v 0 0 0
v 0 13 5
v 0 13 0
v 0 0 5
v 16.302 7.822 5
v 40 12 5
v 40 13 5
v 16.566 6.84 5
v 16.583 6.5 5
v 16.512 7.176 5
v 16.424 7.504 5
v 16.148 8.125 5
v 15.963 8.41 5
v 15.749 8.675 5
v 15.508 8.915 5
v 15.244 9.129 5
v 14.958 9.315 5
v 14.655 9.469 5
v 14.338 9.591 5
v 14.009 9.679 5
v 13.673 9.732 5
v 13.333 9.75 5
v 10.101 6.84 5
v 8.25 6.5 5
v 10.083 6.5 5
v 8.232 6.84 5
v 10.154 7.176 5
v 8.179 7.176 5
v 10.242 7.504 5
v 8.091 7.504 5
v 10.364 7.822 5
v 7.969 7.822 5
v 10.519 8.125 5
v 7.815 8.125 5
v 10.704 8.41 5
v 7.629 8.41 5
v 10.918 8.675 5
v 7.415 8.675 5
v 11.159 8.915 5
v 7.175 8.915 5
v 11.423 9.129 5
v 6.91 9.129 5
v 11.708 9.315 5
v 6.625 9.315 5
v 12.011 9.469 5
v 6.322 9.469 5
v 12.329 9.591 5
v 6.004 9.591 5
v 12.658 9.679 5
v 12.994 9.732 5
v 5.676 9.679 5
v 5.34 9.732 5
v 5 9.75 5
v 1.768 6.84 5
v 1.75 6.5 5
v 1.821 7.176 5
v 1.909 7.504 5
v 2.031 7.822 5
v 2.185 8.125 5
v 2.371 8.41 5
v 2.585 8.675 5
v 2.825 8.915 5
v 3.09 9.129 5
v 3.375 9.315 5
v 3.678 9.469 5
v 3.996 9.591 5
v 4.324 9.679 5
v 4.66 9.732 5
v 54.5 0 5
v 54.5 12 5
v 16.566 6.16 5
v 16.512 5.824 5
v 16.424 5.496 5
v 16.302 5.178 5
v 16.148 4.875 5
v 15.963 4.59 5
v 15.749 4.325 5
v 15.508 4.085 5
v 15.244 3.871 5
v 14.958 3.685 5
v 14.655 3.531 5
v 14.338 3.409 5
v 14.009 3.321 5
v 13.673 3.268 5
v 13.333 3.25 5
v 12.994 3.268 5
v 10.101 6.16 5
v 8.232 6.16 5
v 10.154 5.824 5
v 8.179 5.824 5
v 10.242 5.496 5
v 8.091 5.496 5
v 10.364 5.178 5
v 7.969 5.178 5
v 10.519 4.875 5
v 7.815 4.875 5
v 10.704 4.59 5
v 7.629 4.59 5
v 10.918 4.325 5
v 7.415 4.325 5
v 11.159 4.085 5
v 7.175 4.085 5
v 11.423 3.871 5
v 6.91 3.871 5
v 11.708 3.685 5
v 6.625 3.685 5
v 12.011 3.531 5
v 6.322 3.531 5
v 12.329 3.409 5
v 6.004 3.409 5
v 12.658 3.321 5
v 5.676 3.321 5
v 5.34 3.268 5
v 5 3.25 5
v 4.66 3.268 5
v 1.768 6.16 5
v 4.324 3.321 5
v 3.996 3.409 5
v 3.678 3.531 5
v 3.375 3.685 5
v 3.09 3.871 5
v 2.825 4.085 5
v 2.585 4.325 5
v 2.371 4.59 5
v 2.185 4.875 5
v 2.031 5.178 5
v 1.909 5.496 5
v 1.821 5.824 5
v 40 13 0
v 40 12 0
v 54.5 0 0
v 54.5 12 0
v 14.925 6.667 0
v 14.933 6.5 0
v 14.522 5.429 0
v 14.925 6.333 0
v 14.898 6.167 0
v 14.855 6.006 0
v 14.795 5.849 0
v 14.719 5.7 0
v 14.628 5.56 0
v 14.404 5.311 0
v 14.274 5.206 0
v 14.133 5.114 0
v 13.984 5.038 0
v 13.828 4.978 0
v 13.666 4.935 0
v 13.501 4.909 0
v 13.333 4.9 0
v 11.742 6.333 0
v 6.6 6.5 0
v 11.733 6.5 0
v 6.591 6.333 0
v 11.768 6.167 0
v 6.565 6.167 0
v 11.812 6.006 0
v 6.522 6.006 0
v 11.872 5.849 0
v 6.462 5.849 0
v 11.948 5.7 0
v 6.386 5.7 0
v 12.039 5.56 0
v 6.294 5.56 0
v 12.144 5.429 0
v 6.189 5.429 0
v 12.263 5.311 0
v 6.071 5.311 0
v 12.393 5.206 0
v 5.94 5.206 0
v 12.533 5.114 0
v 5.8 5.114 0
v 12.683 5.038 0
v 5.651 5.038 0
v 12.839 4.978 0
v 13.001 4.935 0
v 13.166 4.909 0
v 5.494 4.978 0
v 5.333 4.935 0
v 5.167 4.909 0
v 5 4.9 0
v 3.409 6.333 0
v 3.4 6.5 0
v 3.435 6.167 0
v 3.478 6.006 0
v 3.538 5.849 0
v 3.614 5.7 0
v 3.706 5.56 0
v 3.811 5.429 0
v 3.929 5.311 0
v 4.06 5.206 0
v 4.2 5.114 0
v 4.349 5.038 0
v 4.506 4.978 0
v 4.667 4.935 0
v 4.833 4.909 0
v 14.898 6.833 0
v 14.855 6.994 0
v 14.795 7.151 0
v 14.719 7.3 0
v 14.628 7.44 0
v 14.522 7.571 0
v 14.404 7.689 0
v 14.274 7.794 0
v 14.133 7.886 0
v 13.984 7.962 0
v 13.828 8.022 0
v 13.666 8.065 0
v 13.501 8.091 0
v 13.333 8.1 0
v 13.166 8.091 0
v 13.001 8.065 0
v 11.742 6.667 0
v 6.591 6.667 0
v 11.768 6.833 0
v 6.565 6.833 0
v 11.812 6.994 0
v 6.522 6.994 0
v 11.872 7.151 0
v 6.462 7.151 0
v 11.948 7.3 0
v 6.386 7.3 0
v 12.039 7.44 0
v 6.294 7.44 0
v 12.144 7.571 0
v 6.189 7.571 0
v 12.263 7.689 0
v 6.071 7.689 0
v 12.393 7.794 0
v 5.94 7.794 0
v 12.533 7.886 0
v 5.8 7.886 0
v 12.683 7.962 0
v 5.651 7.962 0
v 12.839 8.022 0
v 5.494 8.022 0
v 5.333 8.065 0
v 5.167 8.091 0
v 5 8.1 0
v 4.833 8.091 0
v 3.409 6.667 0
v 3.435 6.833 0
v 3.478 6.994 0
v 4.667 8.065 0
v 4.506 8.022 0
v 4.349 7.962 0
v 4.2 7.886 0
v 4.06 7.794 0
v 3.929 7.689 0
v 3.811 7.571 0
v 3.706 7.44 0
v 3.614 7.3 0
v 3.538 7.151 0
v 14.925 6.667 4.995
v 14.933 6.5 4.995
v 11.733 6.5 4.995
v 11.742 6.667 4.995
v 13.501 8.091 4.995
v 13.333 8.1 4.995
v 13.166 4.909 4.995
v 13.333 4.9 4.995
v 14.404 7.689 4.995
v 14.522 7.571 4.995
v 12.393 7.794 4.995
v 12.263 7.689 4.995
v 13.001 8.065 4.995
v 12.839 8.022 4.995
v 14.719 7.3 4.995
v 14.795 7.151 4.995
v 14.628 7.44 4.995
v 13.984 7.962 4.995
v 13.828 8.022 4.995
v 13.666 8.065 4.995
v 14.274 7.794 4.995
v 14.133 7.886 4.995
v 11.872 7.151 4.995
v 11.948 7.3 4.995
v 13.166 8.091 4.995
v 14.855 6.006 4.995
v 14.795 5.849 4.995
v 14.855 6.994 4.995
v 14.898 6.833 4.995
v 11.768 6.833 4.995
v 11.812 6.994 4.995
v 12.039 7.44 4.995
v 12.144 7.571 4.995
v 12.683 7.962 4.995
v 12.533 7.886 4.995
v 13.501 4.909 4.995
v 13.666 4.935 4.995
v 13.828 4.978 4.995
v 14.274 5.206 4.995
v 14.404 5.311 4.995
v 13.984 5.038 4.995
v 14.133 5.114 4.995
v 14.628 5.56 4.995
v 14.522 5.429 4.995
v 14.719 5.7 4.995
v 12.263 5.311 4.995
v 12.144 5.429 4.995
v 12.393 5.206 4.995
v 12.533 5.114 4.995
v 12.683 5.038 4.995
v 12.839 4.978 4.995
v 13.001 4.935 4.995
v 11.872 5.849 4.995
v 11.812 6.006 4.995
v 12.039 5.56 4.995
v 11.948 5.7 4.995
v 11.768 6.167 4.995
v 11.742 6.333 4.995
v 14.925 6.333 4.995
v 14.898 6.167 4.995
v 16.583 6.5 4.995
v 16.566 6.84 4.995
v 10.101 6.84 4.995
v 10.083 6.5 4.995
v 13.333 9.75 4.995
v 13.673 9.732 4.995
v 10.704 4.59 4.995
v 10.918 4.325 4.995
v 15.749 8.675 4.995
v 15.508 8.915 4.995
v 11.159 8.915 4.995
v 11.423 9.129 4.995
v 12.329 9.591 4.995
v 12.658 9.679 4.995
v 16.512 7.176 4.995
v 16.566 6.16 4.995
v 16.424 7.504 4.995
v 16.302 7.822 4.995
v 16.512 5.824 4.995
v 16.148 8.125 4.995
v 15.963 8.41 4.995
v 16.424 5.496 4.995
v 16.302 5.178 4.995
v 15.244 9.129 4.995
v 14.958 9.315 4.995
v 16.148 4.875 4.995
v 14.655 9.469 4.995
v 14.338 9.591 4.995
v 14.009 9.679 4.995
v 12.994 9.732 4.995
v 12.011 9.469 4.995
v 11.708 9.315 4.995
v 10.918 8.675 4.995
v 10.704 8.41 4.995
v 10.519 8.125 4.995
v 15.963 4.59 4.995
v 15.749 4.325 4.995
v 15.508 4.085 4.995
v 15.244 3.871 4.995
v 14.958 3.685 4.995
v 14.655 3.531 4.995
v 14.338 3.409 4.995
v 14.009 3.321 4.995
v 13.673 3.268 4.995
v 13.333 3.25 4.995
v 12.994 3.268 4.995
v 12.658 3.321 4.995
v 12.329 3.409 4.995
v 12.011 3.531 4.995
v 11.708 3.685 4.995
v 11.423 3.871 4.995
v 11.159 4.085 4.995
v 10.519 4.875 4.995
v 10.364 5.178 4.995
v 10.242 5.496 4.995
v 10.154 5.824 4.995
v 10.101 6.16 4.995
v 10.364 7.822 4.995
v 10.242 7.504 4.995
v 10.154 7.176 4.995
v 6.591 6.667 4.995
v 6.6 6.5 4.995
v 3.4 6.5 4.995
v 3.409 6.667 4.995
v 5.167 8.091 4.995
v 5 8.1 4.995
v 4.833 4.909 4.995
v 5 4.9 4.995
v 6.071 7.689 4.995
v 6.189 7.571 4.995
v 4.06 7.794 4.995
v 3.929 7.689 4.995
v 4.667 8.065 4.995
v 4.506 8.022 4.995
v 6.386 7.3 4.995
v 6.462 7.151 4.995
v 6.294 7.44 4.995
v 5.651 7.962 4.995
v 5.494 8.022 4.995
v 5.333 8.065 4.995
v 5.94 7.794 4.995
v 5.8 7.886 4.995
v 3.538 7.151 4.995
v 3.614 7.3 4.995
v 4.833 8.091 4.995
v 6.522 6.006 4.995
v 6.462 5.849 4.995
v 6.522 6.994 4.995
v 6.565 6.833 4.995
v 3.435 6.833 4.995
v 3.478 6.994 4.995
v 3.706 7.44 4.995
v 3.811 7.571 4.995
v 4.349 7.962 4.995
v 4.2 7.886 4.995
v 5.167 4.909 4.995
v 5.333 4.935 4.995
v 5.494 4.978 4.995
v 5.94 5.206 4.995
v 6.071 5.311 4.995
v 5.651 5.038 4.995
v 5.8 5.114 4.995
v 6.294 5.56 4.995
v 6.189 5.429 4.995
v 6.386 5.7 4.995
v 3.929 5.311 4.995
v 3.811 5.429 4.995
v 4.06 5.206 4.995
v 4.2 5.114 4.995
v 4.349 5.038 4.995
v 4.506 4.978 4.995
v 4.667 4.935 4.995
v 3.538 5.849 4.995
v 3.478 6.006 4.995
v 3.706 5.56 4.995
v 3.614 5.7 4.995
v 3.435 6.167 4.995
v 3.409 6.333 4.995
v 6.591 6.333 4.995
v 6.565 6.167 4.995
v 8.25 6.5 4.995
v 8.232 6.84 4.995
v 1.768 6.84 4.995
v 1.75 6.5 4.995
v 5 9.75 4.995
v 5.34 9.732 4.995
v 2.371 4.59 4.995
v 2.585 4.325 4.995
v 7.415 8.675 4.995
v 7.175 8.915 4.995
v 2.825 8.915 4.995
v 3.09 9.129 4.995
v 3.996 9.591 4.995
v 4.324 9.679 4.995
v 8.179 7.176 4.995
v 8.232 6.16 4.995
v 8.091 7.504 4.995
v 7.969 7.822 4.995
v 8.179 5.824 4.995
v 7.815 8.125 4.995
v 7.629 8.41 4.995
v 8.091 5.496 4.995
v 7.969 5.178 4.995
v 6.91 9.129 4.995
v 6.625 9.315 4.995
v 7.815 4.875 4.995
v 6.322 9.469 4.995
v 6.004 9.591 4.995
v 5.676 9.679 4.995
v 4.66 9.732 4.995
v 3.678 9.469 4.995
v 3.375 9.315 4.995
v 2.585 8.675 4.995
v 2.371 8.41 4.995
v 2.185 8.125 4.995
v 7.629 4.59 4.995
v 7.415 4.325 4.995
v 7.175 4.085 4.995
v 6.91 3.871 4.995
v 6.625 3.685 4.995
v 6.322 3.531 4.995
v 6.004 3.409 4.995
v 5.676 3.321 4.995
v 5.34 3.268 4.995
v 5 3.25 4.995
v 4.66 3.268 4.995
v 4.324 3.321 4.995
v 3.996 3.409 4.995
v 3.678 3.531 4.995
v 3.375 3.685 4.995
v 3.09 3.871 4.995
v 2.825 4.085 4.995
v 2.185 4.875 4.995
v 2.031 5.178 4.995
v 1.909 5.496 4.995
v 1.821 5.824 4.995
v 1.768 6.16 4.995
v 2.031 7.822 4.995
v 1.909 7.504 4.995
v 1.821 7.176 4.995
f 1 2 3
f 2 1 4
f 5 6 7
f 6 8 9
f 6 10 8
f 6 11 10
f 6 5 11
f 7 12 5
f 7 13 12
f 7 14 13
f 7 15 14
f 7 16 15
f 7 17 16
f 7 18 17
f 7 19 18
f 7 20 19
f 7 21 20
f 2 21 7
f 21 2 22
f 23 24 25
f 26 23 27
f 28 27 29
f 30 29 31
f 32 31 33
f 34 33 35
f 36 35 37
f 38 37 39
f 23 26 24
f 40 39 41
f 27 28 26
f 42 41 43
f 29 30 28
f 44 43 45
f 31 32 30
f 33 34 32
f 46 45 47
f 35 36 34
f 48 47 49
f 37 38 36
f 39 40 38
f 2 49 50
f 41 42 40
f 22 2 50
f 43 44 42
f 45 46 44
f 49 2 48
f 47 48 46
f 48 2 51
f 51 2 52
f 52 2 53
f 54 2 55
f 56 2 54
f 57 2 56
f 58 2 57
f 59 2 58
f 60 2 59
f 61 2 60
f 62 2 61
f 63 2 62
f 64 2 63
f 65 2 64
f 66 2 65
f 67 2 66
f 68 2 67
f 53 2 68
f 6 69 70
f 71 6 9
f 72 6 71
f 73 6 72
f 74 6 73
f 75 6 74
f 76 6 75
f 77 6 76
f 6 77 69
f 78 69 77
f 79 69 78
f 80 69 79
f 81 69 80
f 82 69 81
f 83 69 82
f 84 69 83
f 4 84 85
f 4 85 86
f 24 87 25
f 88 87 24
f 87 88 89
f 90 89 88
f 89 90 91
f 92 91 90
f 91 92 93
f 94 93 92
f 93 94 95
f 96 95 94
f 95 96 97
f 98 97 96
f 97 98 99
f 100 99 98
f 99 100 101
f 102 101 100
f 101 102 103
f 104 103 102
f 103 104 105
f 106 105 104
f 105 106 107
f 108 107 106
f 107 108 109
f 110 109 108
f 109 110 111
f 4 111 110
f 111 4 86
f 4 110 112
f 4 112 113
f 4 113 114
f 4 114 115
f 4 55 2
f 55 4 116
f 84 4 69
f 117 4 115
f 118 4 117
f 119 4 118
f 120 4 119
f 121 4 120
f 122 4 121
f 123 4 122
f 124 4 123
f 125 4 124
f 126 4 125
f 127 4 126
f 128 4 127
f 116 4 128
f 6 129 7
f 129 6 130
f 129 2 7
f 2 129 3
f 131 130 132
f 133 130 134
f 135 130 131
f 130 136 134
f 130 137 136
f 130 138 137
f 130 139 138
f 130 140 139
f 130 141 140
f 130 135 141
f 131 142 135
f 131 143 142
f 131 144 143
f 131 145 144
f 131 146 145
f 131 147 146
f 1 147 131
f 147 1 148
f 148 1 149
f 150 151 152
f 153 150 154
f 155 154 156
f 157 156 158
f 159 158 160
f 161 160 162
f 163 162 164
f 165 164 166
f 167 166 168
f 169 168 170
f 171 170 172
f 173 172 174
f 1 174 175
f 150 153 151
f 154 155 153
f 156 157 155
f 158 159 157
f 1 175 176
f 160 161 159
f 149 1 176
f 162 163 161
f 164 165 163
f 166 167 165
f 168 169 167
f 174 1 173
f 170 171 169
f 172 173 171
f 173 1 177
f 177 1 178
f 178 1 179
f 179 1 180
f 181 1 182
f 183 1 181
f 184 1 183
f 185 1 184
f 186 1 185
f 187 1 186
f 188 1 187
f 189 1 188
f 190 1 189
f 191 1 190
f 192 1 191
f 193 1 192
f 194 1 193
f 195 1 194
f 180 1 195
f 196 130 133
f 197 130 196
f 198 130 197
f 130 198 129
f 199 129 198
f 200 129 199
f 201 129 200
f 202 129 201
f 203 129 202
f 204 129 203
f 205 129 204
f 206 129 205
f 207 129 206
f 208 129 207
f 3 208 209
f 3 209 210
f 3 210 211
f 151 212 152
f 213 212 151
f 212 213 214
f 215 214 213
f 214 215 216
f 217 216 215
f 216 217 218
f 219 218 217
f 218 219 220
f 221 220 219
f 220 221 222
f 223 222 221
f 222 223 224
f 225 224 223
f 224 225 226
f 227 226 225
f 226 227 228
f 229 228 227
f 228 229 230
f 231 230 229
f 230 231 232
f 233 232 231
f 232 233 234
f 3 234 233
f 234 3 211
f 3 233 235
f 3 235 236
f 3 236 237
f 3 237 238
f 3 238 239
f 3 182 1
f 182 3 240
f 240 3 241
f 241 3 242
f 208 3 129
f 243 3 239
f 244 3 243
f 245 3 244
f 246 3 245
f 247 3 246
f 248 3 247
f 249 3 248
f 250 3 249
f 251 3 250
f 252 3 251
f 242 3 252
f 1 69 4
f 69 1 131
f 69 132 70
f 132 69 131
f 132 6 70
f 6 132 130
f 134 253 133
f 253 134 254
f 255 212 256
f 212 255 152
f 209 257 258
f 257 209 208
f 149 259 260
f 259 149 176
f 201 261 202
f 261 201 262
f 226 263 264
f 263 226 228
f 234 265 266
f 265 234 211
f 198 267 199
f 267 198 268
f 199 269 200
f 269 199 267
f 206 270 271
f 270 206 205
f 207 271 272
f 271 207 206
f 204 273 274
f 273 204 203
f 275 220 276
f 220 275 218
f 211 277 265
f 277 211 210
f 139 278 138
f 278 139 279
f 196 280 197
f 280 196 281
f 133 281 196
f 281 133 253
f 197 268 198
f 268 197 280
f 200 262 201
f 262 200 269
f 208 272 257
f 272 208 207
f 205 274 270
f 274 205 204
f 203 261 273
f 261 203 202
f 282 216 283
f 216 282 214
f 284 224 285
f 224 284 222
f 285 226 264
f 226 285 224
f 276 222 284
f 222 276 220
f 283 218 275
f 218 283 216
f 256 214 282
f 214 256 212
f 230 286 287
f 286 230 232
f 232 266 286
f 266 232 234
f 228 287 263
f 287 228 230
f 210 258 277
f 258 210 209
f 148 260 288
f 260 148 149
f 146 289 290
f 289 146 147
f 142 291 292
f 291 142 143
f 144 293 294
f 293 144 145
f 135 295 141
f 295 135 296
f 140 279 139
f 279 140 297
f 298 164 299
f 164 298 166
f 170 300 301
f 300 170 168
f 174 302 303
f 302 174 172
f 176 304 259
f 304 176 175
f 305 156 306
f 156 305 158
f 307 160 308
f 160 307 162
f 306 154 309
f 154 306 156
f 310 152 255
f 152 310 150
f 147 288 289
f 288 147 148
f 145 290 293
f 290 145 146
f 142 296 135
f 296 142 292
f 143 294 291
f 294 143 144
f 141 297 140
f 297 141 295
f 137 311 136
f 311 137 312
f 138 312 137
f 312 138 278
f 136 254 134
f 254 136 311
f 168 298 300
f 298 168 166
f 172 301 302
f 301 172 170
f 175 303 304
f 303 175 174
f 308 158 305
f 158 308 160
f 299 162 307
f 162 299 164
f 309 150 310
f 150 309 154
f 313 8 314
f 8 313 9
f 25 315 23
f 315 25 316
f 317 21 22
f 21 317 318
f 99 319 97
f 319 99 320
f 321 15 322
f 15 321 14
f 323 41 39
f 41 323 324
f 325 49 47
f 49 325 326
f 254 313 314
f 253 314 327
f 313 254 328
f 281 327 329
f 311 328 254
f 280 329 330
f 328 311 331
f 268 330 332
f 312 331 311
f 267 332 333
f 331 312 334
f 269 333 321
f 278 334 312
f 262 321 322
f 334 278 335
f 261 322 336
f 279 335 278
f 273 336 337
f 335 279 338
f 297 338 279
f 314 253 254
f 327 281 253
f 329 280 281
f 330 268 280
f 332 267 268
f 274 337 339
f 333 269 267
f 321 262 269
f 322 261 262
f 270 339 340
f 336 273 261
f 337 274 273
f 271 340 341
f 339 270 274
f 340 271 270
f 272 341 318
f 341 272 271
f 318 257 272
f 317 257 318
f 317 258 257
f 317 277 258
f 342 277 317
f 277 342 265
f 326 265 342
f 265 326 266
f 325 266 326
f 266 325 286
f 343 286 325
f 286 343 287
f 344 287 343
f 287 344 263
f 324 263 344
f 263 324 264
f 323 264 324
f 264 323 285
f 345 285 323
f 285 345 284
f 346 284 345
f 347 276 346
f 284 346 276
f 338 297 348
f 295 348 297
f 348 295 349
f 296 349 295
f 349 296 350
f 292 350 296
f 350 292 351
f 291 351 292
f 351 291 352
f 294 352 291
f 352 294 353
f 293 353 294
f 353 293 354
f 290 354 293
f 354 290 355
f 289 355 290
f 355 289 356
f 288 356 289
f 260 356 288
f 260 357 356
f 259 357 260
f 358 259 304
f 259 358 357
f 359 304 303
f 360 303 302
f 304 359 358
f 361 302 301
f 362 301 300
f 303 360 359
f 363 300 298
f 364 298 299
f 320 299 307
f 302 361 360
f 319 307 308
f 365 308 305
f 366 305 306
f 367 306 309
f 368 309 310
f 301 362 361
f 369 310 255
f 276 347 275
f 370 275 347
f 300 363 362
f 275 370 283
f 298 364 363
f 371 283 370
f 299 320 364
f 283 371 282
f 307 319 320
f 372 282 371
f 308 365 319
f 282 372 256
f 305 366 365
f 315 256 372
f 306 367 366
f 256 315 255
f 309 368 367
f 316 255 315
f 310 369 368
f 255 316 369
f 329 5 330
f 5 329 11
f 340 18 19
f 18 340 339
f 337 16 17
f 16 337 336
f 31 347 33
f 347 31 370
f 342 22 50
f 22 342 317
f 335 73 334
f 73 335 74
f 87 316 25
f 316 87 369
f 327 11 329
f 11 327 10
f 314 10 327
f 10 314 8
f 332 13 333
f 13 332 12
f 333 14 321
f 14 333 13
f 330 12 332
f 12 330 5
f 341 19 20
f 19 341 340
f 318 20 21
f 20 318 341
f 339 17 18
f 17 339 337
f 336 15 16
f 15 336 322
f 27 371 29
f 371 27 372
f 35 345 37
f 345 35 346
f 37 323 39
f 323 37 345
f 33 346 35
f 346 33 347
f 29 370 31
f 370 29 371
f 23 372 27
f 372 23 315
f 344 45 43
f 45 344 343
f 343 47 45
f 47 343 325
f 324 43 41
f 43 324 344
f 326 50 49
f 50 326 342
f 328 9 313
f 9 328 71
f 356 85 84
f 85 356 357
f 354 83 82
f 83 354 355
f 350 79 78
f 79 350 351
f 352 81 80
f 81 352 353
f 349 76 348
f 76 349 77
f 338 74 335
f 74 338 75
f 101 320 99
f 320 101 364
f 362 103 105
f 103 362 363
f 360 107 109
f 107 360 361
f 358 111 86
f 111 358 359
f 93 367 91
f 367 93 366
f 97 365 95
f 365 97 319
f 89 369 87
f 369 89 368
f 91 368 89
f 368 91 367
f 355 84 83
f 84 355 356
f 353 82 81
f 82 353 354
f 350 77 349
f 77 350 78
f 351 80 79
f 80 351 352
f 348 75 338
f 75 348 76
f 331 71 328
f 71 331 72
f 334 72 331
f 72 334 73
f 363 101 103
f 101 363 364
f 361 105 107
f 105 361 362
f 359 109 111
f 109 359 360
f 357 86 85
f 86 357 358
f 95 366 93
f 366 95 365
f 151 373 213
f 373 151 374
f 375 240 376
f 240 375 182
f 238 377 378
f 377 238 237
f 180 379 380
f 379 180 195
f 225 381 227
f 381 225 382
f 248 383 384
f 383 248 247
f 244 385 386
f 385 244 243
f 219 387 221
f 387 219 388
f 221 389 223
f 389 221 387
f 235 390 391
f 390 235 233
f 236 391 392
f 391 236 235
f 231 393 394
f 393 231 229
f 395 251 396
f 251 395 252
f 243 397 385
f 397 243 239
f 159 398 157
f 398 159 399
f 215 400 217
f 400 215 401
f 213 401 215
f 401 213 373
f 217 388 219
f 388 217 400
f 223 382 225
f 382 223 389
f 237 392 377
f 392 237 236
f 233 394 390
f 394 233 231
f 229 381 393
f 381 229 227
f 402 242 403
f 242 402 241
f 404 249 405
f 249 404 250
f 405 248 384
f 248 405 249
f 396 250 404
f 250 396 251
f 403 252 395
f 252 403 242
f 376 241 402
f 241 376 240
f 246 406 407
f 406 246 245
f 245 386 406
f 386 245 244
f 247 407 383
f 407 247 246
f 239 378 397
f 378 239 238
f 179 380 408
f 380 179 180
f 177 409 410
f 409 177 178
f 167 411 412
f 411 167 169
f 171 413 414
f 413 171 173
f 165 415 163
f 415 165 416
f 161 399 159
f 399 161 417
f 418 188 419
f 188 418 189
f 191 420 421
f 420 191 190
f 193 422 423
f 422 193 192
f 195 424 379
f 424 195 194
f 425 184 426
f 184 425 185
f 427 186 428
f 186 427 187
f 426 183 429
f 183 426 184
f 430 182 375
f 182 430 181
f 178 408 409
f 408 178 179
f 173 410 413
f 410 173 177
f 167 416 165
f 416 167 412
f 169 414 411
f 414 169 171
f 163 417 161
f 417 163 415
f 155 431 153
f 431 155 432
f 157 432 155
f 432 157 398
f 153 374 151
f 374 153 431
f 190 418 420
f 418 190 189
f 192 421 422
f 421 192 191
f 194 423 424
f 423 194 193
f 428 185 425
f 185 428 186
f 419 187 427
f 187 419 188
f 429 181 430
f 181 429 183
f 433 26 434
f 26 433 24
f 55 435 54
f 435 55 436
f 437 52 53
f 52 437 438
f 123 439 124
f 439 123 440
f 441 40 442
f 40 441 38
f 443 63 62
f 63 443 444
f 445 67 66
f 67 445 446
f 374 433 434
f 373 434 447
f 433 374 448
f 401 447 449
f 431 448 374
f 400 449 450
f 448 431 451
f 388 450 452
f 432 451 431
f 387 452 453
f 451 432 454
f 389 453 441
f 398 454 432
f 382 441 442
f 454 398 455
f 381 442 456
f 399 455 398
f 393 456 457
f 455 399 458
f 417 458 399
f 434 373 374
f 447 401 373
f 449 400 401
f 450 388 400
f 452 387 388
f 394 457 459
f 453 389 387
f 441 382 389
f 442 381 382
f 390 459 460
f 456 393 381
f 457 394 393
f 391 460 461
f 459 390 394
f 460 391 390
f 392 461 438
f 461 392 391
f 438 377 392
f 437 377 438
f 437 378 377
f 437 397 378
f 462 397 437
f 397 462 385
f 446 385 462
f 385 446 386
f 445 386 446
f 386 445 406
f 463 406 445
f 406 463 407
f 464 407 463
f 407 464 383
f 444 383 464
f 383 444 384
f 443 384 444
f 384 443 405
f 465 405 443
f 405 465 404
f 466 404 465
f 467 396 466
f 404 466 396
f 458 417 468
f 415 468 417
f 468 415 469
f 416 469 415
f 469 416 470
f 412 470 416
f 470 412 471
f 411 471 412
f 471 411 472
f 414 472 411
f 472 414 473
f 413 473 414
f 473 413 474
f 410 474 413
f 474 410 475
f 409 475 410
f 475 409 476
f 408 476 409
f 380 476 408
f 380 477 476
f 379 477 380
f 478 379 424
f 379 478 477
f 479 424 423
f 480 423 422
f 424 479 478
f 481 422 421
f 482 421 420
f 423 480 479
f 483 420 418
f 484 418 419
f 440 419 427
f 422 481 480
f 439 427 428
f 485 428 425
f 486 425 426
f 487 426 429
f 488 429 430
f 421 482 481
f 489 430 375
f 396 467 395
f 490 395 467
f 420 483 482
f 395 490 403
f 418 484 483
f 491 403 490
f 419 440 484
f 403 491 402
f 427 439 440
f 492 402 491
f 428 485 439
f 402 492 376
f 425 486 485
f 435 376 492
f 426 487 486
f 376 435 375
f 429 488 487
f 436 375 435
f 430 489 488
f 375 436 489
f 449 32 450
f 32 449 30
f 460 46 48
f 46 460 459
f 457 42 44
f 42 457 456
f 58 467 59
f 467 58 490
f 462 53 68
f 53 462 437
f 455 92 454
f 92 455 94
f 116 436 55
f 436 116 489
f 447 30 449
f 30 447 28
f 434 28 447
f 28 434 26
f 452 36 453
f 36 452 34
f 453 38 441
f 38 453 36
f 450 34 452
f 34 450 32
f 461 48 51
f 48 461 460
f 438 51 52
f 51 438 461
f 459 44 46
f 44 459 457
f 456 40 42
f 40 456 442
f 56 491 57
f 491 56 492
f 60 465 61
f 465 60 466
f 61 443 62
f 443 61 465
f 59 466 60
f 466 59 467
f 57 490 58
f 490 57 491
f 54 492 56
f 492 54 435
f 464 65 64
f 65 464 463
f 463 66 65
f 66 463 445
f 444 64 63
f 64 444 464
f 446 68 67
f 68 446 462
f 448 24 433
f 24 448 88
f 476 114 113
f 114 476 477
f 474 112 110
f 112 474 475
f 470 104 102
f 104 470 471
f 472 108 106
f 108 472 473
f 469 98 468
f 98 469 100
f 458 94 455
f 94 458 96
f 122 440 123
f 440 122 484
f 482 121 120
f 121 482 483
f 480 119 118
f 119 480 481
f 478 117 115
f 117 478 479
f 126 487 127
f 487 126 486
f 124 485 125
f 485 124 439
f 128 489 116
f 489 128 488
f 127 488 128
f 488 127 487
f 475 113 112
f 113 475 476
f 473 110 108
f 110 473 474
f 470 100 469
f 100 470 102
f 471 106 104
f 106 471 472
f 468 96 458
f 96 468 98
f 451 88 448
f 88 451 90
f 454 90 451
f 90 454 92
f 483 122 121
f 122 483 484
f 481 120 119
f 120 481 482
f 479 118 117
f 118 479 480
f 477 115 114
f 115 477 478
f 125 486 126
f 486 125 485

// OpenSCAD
// file: nutsnbolts/data-access.scad
// Norm Nuts and Bolts - a OpenSCAD library
// Copyright (C) 2012  Johannes Kneer

// This program is free software: you can redistribute it and/or modify
// it under the terms of the GNU General Public License as published by
// the Free Software Foundation, either version 3 of the License, or
// (at your option) any later version.

// This program is distributed in the hope that it will be useful,
// but WITHOUT ANY WARRANTY; without even the implied warranty of
// MERCHANTABILITY or FITNESS FOR A PARTICULAR PURPOSE.  See the
// GNU General Public License for more details.

// You should have received a copy of the GNU General Public License
// along with this program.  If not, see <http://www.gnu.org/licenses/>.


// DATABASE ACCESS FUNCTIONS AND CONSTANTS



// == CONSTANTS ==

// screw table access keys
_NB_S_DESC            = 0;
_NB_S_FAMKEY			    = 1;
_NB_S_LENGTH          = 2;
_NB_S_NOTHREAD_LENGTH = 3;

_NB_F_DESC			      = 0;
_NB_F_OUTER_DIA       = 1;
_NB_F_INNER_DIA       = 2;
_NB_F_LEAD            = 3;
_NB_F_KEY             = 4;
_NB_F_KEY_DEPTH       = 5;
_NB_F_HEAD_HEIGHT     = 6;
_NB_F_HEAD_DIA        = 7;
_NB_F_NUT_KEY         = 8;
_NB_F_NUT_HEIGHT      = 9;
_NB_F_PITCH_FINE      = 10;
_NB_F_PITCH_MEDIUM    = 11;
_NB_F_PITCH_COARSE    = 12;


// == FUNCTIONS ==

// _get_screw("descriptor")   with descriptor = M8x25
//   find the line for a general object in the data matrix

function _get_screw(n) = data_screw[search([n], data_screw)[0]];
function _get_screw_fam(n) = data_screw_fam[search([_get_screw(n)[_NB_S_FAMKEY]], data_screw_fam)[0]];

function _get_fam(n) = data_screw_fam[search([n], data_screw_fam)[0]];


// _get_XXXXX("descriptor") functions
// find a single property in the database

function _get_desc(n)        = _get_screw(n)[_NB_S_DESC];
function _get_famkey(n)         = _get_screw(n)[_NB_S_FAMKEY];
function _get_length(n)      = _get_screw(n)[_NB_S_LENGTH];
function _get_nt_length(n)   = _get_screw(n)[_NB_S_NOTHREAD_LENGTH];

function _get_outer_dia(n)   = _get_screw_fam(n)[_NB_F_OUTER_DIA];
function _get_inner_dia(n)   = _get_screw_fam(n)[_NB_F_INNER_DIA];
function _get_lead(n)        = _get_screw_fam(n)[_NB_F_LEAD];
function _get_head_height(n) = _get_screw_fam(n)[_NB_F_HEAD_HEIGHT];
function _get_head_dia(n)    = _get_screw_fam(n)[_NB_F_HEAD_DIA];
function _get_nut_key(n)     = _get_screw_fam(n)[_NB_F_NUT_KEY];
function _get_nut_height(n)  = _get_screw_fam(n)[_NB_F_NUT_HEIGHT];
function _get_fine_pitch(n)  = _get_screw_fam(n)[_NB_F_PITCH_FINE];
function _get_medium_pitch(n)  = _get_screw_fam(n)[_NB_F_PITCH_MEDIUM];
function _get_coarse_pitch(n)  = _get_screw_fam(n)[_NB_F_PITCH_COARSE];
// main file
/* SMEG fridge shelf back corner replacement
 *
 * The plastic corners in our SMEG fridge are quite flimsy and after a couple of
 * years they just broke away. It has been impossible to source replacements so
 * we decided to design simple functional replacements for them.
 *
 * This is a replacement for the plastic corner that goes at the back, it is
 * symmetric so you can print it in any direction for both corners.
 *
 * Author: @lluismh
 *
 * This work is licensed under a Creative Commons Attribution-ShareAlike 4.0
 * International License.
 */

include <nutsnbolts/cyl_head_bolt.scad>;

$fn = 60;

total_length = 54.50;
widerpart_length = 40;

widerpart_height = 13;
slimmerpart_height = 12;

thickness = 5;

screw_name="M3x5";
ds = _get_screw(screw_name);
df = _get_screw_fam(screw_name);

module holder() {

  translate([0, 0, thickness + (df[_NB_F_HEAD_HEIGHT])]) {
    hole_through(df[_NB_F_DESC], l=ds[_NB_S_LENGTH], h=df[_NB_F_HEAD_HEIGHT]);
  };

  translate([0, 0, df[_NB_F_NUT_HEIGHT]/3]) {
    // nut(df[_NB_F_DESC]);
  };

}

difference() {

  union() {
    cube([widerpart_length, widerpart_height, thickness]);

    translate([widerpart_length, 0, 0]) {
      cube([total_length - widerpart_length, slimmerpart_height, thickness]);
    }
  };

  translate([widerpart_length / 3, widerpart_height / 2, 0]) {
    holder();
  };

  translate([widerpart_length / 8, widerpart_height / 2, 0]) {
    holder();
  };

}
